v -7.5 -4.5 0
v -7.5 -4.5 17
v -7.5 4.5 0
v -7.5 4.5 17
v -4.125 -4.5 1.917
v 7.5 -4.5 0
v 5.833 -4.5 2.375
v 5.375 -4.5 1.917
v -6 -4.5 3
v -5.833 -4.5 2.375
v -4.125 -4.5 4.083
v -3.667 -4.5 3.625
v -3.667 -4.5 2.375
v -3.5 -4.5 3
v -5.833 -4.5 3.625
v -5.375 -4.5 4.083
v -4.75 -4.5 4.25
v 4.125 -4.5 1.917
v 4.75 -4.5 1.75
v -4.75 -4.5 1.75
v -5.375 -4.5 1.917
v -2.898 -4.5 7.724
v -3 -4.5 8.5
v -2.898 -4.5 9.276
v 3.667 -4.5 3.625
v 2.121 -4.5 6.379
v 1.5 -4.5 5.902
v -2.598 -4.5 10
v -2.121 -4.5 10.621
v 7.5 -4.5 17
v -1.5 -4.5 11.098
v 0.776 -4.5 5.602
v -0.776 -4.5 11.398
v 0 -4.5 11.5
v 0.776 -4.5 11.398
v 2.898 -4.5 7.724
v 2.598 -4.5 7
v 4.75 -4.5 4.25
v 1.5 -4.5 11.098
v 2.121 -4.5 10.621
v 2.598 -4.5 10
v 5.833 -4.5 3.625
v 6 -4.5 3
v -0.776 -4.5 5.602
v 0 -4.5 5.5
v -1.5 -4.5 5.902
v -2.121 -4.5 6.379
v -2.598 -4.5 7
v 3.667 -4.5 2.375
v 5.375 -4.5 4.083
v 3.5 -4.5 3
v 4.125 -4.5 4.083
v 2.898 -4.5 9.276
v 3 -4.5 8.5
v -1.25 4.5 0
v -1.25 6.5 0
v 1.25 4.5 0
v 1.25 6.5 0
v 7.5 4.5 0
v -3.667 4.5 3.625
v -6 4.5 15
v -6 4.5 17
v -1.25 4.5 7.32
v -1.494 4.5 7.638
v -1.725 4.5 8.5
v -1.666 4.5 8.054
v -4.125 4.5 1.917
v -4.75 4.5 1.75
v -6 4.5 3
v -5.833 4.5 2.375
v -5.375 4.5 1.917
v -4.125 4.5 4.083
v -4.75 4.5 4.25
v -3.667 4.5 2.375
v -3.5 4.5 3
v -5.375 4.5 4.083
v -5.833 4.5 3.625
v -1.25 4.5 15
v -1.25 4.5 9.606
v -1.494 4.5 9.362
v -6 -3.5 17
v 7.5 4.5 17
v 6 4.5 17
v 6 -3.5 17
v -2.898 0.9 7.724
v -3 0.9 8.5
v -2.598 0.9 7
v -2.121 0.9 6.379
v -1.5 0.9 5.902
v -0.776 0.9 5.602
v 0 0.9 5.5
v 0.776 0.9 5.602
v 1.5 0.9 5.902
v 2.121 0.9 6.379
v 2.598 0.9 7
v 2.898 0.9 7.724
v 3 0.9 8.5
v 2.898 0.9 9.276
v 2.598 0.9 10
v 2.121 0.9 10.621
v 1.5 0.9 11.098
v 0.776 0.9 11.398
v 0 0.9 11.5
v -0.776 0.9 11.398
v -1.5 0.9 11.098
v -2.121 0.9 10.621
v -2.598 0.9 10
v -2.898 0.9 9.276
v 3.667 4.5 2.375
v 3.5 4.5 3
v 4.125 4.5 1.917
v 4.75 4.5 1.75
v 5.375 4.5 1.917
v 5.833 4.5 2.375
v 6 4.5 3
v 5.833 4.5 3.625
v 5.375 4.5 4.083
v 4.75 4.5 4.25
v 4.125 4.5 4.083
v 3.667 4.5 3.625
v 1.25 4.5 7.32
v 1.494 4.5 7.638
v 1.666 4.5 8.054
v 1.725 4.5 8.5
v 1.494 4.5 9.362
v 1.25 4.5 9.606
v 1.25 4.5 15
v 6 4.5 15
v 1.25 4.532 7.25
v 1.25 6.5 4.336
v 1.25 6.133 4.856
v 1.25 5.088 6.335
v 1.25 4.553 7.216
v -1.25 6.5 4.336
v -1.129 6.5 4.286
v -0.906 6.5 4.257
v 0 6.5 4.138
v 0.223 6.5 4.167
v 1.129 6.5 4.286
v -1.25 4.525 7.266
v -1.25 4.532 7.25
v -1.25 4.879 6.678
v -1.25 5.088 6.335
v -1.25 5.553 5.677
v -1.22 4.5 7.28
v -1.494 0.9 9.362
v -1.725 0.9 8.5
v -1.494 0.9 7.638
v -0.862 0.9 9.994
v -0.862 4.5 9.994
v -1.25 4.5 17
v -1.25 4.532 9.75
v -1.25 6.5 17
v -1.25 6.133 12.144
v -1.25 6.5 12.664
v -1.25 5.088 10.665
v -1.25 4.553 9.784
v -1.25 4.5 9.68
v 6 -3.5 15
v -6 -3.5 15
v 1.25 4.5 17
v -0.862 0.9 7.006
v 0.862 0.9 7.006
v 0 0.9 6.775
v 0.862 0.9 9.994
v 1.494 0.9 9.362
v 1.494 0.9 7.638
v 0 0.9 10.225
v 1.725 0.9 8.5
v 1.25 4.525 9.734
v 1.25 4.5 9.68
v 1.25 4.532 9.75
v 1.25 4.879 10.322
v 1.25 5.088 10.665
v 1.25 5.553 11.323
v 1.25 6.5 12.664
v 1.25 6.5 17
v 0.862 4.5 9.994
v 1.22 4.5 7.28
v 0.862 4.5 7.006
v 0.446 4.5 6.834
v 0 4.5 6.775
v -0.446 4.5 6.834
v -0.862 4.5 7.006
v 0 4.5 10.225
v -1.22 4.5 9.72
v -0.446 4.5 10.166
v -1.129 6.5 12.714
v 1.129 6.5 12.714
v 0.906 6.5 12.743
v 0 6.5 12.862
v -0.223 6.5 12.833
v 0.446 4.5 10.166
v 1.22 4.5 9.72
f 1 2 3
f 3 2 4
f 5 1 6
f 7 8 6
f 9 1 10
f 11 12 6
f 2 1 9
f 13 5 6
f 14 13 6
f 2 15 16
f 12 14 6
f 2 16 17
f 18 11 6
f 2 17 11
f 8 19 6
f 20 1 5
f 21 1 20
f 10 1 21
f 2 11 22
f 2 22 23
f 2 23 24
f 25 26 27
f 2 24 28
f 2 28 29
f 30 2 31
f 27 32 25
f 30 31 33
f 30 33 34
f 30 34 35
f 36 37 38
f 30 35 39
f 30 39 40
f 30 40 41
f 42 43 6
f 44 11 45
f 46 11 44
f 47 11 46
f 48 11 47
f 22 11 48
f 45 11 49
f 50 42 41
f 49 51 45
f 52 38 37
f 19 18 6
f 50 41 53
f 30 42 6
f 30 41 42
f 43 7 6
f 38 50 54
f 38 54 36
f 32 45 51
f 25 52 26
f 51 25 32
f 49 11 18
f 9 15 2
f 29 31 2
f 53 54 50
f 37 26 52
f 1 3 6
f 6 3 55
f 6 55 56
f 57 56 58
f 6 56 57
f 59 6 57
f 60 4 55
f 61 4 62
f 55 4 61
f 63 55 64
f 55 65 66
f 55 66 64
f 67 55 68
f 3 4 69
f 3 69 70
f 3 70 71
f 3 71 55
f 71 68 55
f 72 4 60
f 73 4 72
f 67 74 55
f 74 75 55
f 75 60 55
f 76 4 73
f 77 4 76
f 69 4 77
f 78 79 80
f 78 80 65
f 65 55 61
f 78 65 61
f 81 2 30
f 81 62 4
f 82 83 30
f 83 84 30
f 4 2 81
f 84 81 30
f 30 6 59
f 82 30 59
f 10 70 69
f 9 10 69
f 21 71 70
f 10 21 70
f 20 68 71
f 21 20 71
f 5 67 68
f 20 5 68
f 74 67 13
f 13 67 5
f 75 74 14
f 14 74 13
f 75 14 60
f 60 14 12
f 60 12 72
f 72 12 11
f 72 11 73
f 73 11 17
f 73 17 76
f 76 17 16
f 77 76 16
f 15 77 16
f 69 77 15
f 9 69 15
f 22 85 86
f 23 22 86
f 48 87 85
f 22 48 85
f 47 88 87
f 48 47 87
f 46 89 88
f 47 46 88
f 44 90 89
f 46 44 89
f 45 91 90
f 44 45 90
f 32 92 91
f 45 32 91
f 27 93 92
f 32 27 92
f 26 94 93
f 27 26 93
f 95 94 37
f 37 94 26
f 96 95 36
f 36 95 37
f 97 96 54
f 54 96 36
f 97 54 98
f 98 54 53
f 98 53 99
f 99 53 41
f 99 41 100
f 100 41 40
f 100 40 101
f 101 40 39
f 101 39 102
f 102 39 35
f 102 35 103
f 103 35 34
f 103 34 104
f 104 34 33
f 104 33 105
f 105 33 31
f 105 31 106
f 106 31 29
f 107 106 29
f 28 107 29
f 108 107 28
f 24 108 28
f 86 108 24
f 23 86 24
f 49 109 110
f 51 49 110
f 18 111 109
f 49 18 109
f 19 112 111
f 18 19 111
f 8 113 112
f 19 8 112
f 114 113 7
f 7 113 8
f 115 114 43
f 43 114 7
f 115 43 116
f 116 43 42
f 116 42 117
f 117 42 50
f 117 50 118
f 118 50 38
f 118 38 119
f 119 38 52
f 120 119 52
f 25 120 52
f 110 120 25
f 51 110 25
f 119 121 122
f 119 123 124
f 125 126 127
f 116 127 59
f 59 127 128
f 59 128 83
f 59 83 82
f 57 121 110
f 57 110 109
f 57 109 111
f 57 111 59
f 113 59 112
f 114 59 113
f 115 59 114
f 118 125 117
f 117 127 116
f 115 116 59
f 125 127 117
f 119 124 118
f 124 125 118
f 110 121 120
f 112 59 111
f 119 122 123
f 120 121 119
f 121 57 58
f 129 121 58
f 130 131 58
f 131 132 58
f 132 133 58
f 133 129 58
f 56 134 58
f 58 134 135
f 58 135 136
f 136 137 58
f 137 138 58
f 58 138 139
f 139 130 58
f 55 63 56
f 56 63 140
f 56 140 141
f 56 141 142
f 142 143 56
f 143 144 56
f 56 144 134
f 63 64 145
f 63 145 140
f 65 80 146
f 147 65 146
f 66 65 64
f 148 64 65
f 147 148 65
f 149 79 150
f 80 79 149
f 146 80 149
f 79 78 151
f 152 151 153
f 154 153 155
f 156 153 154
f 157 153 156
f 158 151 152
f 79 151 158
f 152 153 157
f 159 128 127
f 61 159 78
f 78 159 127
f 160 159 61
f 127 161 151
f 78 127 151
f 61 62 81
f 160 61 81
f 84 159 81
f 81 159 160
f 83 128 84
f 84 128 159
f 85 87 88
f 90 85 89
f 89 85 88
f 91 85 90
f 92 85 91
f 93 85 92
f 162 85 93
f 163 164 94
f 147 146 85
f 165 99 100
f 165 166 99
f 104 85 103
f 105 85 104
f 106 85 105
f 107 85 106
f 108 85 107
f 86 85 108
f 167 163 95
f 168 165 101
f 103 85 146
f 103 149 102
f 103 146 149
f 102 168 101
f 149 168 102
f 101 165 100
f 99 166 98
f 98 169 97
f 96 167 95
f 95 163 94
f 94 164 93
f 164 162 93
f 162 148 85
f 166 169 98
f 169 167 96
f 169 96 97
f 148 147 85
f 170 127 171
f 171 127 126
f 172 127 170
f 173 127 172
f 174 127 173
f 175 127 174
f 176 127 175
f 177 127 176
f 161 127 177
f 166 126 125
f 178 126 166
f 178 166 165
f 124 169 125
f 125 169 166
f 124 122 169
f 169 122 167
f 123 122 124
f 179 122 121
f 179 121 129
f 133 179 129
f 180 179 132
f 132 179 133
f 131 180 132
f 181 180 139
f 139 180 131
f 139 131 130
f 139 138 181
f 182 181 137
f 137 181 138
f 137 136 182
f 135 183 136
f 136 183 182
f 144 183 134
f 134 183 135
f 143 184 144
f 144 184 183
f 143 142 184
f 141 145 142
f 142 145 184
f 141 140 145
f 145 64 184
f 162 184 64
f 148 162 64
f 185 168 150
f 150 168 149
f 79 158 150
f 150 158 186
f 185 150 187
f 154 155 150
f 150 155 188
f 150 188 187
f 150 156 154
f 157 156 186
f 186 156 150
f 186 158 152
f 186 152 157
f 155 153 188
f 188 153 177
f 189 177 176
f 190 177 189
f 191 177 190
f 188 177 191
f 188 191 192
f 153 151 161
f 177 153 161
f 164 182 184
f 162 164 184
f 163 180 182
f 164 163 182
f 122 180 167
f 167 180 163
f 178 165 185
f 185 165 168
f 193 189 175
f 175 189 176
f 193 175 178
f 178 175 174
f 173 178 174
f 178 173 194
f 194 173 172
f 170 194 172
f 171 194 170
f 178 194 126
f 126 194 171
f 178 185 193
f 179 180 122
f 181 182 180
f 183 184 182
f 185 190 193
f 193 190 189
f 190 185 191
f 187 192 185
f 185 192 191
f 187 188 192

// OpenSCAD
// file: railstop.scad
include <configuration.scad>;

thickness = 9; // 1mm thicker than linear rail.
width = extrusion;  // Same as vertical extrusion.
height = 12;

module railstop() {
  difference() {
    union() {
      cube([width, thickness, height], center=true);
      translate([0, 2, 0])
        cube([2.5, thickness, height], center=true);
    }
    translate([0, (thickness - rail_thickness )/2, height - 2]) {
    	cube([rail_width , rail_thickness, height], center=true);
		}
    rotate([90, 0, 0]) {
      cylinder(r=m3_wide_radius, h=20, center=true, $fn=12);
      translate([0, 0, 3.6-thickness/2]) {
        cylinder(r=3, h=10, $fn=24);
      }
      translate([0, 0, -thickness/2]) scale([1, 1, -1])
        cylinder(r1=m3_wide_radius, r2=7, h=4, $fn=24);
    }		
  }
}

translate([0, 0, height/2]) railstop();
// file: microswitch.scad
// Don't print this file, purchase real micro switches
// e.g. Honeywell ZM10B10A01 or OMRON SS-5 or similar.

module microswitch() {
  difference() {
    union() {
      translate([0, 0, 2.5])
        cube([19.8, 6, 10], center=true);
      translate([2.5, 0.5, 6])
        cube([2, 3.5, 5], center=true);
      translate([0, 0, 10]) rotate([0,15,0])
				cube([20,5,1], center=true);
			translate([-9, 0, 14]) rotate([90,0,0])
	      cylinder(r=2, h=5, center=true, $fn=12);
      for (x = [-8, -1, 8]) {
        translate([x, 0, 0])
          cube([0.6, 3.2, 13], center=true);
      }
    }
    for (x = [-9.5/2, 9.5/2]) {
      translate([x, 0, 0]) rotate([90, 0, 0])
        cylinder(r=2.5/2, h=20, center=true, $fn=12);
    }
  }
}

microswitch();
// file: configuration.scad
// Increase this if your slicer or printer make holes too tight.
extra_radius = 0.1;

// OD = outside diameter, corner to corner.
m3_nut_od = 6.1;
m3_nut_radius = m3_nut_od/2 + 0.2 + extra_radius;
m3_washer_radius = 3.5 + extra_radius;

// Major diameter of metric 3mm thread.
m3_major = 2.85;
m3_radius = m3_major/2 + extra_radius;
m3_wide_radius = m3_major/2 + extra_radius + 0.2;

// NEMA17 stepper motors.
motor_shaft_diameter = 5;
motor_shaft_radius = motor_shaft_diameter/2 + extra_radius;

// Frame brackets. M3x8mm screws work best with 3.6 mm brackets.
thickness = 3.6;

// OpenBeam or Misumi. Currently only 15x15 mm, but there is a plan
// to make models more parametric and allow 20x20 mm in the future.
extrusion = 15;

// HiWin, THK or Misumi
rail_width = 12;
rail_thickness = 8;

// Placement for the NEMA17 stepper motors.
motor_offset = 44;
motor_length = 47;
// main file
include <configuration.scad>;

use <microswitch.scad>;
use <railstop.scad>;

thickness = 9;  // 1mm thicker than linear rail.
width = extrusion;  // Same as vertical extrusion.
height = 17;

module endstop() {
  difference() {
    union() {
      cube([width, thickness, height], center=true);
      translate([0, 2, 0])
        cube([2.5, thickness, height], center=true);
    }
    translate([0, (thickness - rail_thickness )/2, height - 2]) {
    	cube([rail_width , rail_thickness, height], center=true);
		}
    translate([0, 0, 0]) rotate([90, 0, 0]) {
      cylinder(r=m3_wide_radius, h=20, center=true, $fn=12);
      translate([0, 0, 3.6-thickness/2]) {
        cylinder(r=3, h=10, $fn=24);
      }
      translate([0, 0, -thickness/2]) scale([1, 1, -1])
        cylinder(r1=m3_wide_radius, r2=7, h=4, $fn=24);
    }
    translate([0, -3-thickness/2, -5.5]) rotate([0, 0, 0]) {
      % microswitch();
      for (x = [-9.5/2, 9.5/2]) {
        translate([x, 0, 0]) rotate([90, 0, 0])
          cylinder(r=2.5/2, h=40, center=true, $fn=12);
      }
    }
  }
}

translate([0, 0, height/2]) endstop();
